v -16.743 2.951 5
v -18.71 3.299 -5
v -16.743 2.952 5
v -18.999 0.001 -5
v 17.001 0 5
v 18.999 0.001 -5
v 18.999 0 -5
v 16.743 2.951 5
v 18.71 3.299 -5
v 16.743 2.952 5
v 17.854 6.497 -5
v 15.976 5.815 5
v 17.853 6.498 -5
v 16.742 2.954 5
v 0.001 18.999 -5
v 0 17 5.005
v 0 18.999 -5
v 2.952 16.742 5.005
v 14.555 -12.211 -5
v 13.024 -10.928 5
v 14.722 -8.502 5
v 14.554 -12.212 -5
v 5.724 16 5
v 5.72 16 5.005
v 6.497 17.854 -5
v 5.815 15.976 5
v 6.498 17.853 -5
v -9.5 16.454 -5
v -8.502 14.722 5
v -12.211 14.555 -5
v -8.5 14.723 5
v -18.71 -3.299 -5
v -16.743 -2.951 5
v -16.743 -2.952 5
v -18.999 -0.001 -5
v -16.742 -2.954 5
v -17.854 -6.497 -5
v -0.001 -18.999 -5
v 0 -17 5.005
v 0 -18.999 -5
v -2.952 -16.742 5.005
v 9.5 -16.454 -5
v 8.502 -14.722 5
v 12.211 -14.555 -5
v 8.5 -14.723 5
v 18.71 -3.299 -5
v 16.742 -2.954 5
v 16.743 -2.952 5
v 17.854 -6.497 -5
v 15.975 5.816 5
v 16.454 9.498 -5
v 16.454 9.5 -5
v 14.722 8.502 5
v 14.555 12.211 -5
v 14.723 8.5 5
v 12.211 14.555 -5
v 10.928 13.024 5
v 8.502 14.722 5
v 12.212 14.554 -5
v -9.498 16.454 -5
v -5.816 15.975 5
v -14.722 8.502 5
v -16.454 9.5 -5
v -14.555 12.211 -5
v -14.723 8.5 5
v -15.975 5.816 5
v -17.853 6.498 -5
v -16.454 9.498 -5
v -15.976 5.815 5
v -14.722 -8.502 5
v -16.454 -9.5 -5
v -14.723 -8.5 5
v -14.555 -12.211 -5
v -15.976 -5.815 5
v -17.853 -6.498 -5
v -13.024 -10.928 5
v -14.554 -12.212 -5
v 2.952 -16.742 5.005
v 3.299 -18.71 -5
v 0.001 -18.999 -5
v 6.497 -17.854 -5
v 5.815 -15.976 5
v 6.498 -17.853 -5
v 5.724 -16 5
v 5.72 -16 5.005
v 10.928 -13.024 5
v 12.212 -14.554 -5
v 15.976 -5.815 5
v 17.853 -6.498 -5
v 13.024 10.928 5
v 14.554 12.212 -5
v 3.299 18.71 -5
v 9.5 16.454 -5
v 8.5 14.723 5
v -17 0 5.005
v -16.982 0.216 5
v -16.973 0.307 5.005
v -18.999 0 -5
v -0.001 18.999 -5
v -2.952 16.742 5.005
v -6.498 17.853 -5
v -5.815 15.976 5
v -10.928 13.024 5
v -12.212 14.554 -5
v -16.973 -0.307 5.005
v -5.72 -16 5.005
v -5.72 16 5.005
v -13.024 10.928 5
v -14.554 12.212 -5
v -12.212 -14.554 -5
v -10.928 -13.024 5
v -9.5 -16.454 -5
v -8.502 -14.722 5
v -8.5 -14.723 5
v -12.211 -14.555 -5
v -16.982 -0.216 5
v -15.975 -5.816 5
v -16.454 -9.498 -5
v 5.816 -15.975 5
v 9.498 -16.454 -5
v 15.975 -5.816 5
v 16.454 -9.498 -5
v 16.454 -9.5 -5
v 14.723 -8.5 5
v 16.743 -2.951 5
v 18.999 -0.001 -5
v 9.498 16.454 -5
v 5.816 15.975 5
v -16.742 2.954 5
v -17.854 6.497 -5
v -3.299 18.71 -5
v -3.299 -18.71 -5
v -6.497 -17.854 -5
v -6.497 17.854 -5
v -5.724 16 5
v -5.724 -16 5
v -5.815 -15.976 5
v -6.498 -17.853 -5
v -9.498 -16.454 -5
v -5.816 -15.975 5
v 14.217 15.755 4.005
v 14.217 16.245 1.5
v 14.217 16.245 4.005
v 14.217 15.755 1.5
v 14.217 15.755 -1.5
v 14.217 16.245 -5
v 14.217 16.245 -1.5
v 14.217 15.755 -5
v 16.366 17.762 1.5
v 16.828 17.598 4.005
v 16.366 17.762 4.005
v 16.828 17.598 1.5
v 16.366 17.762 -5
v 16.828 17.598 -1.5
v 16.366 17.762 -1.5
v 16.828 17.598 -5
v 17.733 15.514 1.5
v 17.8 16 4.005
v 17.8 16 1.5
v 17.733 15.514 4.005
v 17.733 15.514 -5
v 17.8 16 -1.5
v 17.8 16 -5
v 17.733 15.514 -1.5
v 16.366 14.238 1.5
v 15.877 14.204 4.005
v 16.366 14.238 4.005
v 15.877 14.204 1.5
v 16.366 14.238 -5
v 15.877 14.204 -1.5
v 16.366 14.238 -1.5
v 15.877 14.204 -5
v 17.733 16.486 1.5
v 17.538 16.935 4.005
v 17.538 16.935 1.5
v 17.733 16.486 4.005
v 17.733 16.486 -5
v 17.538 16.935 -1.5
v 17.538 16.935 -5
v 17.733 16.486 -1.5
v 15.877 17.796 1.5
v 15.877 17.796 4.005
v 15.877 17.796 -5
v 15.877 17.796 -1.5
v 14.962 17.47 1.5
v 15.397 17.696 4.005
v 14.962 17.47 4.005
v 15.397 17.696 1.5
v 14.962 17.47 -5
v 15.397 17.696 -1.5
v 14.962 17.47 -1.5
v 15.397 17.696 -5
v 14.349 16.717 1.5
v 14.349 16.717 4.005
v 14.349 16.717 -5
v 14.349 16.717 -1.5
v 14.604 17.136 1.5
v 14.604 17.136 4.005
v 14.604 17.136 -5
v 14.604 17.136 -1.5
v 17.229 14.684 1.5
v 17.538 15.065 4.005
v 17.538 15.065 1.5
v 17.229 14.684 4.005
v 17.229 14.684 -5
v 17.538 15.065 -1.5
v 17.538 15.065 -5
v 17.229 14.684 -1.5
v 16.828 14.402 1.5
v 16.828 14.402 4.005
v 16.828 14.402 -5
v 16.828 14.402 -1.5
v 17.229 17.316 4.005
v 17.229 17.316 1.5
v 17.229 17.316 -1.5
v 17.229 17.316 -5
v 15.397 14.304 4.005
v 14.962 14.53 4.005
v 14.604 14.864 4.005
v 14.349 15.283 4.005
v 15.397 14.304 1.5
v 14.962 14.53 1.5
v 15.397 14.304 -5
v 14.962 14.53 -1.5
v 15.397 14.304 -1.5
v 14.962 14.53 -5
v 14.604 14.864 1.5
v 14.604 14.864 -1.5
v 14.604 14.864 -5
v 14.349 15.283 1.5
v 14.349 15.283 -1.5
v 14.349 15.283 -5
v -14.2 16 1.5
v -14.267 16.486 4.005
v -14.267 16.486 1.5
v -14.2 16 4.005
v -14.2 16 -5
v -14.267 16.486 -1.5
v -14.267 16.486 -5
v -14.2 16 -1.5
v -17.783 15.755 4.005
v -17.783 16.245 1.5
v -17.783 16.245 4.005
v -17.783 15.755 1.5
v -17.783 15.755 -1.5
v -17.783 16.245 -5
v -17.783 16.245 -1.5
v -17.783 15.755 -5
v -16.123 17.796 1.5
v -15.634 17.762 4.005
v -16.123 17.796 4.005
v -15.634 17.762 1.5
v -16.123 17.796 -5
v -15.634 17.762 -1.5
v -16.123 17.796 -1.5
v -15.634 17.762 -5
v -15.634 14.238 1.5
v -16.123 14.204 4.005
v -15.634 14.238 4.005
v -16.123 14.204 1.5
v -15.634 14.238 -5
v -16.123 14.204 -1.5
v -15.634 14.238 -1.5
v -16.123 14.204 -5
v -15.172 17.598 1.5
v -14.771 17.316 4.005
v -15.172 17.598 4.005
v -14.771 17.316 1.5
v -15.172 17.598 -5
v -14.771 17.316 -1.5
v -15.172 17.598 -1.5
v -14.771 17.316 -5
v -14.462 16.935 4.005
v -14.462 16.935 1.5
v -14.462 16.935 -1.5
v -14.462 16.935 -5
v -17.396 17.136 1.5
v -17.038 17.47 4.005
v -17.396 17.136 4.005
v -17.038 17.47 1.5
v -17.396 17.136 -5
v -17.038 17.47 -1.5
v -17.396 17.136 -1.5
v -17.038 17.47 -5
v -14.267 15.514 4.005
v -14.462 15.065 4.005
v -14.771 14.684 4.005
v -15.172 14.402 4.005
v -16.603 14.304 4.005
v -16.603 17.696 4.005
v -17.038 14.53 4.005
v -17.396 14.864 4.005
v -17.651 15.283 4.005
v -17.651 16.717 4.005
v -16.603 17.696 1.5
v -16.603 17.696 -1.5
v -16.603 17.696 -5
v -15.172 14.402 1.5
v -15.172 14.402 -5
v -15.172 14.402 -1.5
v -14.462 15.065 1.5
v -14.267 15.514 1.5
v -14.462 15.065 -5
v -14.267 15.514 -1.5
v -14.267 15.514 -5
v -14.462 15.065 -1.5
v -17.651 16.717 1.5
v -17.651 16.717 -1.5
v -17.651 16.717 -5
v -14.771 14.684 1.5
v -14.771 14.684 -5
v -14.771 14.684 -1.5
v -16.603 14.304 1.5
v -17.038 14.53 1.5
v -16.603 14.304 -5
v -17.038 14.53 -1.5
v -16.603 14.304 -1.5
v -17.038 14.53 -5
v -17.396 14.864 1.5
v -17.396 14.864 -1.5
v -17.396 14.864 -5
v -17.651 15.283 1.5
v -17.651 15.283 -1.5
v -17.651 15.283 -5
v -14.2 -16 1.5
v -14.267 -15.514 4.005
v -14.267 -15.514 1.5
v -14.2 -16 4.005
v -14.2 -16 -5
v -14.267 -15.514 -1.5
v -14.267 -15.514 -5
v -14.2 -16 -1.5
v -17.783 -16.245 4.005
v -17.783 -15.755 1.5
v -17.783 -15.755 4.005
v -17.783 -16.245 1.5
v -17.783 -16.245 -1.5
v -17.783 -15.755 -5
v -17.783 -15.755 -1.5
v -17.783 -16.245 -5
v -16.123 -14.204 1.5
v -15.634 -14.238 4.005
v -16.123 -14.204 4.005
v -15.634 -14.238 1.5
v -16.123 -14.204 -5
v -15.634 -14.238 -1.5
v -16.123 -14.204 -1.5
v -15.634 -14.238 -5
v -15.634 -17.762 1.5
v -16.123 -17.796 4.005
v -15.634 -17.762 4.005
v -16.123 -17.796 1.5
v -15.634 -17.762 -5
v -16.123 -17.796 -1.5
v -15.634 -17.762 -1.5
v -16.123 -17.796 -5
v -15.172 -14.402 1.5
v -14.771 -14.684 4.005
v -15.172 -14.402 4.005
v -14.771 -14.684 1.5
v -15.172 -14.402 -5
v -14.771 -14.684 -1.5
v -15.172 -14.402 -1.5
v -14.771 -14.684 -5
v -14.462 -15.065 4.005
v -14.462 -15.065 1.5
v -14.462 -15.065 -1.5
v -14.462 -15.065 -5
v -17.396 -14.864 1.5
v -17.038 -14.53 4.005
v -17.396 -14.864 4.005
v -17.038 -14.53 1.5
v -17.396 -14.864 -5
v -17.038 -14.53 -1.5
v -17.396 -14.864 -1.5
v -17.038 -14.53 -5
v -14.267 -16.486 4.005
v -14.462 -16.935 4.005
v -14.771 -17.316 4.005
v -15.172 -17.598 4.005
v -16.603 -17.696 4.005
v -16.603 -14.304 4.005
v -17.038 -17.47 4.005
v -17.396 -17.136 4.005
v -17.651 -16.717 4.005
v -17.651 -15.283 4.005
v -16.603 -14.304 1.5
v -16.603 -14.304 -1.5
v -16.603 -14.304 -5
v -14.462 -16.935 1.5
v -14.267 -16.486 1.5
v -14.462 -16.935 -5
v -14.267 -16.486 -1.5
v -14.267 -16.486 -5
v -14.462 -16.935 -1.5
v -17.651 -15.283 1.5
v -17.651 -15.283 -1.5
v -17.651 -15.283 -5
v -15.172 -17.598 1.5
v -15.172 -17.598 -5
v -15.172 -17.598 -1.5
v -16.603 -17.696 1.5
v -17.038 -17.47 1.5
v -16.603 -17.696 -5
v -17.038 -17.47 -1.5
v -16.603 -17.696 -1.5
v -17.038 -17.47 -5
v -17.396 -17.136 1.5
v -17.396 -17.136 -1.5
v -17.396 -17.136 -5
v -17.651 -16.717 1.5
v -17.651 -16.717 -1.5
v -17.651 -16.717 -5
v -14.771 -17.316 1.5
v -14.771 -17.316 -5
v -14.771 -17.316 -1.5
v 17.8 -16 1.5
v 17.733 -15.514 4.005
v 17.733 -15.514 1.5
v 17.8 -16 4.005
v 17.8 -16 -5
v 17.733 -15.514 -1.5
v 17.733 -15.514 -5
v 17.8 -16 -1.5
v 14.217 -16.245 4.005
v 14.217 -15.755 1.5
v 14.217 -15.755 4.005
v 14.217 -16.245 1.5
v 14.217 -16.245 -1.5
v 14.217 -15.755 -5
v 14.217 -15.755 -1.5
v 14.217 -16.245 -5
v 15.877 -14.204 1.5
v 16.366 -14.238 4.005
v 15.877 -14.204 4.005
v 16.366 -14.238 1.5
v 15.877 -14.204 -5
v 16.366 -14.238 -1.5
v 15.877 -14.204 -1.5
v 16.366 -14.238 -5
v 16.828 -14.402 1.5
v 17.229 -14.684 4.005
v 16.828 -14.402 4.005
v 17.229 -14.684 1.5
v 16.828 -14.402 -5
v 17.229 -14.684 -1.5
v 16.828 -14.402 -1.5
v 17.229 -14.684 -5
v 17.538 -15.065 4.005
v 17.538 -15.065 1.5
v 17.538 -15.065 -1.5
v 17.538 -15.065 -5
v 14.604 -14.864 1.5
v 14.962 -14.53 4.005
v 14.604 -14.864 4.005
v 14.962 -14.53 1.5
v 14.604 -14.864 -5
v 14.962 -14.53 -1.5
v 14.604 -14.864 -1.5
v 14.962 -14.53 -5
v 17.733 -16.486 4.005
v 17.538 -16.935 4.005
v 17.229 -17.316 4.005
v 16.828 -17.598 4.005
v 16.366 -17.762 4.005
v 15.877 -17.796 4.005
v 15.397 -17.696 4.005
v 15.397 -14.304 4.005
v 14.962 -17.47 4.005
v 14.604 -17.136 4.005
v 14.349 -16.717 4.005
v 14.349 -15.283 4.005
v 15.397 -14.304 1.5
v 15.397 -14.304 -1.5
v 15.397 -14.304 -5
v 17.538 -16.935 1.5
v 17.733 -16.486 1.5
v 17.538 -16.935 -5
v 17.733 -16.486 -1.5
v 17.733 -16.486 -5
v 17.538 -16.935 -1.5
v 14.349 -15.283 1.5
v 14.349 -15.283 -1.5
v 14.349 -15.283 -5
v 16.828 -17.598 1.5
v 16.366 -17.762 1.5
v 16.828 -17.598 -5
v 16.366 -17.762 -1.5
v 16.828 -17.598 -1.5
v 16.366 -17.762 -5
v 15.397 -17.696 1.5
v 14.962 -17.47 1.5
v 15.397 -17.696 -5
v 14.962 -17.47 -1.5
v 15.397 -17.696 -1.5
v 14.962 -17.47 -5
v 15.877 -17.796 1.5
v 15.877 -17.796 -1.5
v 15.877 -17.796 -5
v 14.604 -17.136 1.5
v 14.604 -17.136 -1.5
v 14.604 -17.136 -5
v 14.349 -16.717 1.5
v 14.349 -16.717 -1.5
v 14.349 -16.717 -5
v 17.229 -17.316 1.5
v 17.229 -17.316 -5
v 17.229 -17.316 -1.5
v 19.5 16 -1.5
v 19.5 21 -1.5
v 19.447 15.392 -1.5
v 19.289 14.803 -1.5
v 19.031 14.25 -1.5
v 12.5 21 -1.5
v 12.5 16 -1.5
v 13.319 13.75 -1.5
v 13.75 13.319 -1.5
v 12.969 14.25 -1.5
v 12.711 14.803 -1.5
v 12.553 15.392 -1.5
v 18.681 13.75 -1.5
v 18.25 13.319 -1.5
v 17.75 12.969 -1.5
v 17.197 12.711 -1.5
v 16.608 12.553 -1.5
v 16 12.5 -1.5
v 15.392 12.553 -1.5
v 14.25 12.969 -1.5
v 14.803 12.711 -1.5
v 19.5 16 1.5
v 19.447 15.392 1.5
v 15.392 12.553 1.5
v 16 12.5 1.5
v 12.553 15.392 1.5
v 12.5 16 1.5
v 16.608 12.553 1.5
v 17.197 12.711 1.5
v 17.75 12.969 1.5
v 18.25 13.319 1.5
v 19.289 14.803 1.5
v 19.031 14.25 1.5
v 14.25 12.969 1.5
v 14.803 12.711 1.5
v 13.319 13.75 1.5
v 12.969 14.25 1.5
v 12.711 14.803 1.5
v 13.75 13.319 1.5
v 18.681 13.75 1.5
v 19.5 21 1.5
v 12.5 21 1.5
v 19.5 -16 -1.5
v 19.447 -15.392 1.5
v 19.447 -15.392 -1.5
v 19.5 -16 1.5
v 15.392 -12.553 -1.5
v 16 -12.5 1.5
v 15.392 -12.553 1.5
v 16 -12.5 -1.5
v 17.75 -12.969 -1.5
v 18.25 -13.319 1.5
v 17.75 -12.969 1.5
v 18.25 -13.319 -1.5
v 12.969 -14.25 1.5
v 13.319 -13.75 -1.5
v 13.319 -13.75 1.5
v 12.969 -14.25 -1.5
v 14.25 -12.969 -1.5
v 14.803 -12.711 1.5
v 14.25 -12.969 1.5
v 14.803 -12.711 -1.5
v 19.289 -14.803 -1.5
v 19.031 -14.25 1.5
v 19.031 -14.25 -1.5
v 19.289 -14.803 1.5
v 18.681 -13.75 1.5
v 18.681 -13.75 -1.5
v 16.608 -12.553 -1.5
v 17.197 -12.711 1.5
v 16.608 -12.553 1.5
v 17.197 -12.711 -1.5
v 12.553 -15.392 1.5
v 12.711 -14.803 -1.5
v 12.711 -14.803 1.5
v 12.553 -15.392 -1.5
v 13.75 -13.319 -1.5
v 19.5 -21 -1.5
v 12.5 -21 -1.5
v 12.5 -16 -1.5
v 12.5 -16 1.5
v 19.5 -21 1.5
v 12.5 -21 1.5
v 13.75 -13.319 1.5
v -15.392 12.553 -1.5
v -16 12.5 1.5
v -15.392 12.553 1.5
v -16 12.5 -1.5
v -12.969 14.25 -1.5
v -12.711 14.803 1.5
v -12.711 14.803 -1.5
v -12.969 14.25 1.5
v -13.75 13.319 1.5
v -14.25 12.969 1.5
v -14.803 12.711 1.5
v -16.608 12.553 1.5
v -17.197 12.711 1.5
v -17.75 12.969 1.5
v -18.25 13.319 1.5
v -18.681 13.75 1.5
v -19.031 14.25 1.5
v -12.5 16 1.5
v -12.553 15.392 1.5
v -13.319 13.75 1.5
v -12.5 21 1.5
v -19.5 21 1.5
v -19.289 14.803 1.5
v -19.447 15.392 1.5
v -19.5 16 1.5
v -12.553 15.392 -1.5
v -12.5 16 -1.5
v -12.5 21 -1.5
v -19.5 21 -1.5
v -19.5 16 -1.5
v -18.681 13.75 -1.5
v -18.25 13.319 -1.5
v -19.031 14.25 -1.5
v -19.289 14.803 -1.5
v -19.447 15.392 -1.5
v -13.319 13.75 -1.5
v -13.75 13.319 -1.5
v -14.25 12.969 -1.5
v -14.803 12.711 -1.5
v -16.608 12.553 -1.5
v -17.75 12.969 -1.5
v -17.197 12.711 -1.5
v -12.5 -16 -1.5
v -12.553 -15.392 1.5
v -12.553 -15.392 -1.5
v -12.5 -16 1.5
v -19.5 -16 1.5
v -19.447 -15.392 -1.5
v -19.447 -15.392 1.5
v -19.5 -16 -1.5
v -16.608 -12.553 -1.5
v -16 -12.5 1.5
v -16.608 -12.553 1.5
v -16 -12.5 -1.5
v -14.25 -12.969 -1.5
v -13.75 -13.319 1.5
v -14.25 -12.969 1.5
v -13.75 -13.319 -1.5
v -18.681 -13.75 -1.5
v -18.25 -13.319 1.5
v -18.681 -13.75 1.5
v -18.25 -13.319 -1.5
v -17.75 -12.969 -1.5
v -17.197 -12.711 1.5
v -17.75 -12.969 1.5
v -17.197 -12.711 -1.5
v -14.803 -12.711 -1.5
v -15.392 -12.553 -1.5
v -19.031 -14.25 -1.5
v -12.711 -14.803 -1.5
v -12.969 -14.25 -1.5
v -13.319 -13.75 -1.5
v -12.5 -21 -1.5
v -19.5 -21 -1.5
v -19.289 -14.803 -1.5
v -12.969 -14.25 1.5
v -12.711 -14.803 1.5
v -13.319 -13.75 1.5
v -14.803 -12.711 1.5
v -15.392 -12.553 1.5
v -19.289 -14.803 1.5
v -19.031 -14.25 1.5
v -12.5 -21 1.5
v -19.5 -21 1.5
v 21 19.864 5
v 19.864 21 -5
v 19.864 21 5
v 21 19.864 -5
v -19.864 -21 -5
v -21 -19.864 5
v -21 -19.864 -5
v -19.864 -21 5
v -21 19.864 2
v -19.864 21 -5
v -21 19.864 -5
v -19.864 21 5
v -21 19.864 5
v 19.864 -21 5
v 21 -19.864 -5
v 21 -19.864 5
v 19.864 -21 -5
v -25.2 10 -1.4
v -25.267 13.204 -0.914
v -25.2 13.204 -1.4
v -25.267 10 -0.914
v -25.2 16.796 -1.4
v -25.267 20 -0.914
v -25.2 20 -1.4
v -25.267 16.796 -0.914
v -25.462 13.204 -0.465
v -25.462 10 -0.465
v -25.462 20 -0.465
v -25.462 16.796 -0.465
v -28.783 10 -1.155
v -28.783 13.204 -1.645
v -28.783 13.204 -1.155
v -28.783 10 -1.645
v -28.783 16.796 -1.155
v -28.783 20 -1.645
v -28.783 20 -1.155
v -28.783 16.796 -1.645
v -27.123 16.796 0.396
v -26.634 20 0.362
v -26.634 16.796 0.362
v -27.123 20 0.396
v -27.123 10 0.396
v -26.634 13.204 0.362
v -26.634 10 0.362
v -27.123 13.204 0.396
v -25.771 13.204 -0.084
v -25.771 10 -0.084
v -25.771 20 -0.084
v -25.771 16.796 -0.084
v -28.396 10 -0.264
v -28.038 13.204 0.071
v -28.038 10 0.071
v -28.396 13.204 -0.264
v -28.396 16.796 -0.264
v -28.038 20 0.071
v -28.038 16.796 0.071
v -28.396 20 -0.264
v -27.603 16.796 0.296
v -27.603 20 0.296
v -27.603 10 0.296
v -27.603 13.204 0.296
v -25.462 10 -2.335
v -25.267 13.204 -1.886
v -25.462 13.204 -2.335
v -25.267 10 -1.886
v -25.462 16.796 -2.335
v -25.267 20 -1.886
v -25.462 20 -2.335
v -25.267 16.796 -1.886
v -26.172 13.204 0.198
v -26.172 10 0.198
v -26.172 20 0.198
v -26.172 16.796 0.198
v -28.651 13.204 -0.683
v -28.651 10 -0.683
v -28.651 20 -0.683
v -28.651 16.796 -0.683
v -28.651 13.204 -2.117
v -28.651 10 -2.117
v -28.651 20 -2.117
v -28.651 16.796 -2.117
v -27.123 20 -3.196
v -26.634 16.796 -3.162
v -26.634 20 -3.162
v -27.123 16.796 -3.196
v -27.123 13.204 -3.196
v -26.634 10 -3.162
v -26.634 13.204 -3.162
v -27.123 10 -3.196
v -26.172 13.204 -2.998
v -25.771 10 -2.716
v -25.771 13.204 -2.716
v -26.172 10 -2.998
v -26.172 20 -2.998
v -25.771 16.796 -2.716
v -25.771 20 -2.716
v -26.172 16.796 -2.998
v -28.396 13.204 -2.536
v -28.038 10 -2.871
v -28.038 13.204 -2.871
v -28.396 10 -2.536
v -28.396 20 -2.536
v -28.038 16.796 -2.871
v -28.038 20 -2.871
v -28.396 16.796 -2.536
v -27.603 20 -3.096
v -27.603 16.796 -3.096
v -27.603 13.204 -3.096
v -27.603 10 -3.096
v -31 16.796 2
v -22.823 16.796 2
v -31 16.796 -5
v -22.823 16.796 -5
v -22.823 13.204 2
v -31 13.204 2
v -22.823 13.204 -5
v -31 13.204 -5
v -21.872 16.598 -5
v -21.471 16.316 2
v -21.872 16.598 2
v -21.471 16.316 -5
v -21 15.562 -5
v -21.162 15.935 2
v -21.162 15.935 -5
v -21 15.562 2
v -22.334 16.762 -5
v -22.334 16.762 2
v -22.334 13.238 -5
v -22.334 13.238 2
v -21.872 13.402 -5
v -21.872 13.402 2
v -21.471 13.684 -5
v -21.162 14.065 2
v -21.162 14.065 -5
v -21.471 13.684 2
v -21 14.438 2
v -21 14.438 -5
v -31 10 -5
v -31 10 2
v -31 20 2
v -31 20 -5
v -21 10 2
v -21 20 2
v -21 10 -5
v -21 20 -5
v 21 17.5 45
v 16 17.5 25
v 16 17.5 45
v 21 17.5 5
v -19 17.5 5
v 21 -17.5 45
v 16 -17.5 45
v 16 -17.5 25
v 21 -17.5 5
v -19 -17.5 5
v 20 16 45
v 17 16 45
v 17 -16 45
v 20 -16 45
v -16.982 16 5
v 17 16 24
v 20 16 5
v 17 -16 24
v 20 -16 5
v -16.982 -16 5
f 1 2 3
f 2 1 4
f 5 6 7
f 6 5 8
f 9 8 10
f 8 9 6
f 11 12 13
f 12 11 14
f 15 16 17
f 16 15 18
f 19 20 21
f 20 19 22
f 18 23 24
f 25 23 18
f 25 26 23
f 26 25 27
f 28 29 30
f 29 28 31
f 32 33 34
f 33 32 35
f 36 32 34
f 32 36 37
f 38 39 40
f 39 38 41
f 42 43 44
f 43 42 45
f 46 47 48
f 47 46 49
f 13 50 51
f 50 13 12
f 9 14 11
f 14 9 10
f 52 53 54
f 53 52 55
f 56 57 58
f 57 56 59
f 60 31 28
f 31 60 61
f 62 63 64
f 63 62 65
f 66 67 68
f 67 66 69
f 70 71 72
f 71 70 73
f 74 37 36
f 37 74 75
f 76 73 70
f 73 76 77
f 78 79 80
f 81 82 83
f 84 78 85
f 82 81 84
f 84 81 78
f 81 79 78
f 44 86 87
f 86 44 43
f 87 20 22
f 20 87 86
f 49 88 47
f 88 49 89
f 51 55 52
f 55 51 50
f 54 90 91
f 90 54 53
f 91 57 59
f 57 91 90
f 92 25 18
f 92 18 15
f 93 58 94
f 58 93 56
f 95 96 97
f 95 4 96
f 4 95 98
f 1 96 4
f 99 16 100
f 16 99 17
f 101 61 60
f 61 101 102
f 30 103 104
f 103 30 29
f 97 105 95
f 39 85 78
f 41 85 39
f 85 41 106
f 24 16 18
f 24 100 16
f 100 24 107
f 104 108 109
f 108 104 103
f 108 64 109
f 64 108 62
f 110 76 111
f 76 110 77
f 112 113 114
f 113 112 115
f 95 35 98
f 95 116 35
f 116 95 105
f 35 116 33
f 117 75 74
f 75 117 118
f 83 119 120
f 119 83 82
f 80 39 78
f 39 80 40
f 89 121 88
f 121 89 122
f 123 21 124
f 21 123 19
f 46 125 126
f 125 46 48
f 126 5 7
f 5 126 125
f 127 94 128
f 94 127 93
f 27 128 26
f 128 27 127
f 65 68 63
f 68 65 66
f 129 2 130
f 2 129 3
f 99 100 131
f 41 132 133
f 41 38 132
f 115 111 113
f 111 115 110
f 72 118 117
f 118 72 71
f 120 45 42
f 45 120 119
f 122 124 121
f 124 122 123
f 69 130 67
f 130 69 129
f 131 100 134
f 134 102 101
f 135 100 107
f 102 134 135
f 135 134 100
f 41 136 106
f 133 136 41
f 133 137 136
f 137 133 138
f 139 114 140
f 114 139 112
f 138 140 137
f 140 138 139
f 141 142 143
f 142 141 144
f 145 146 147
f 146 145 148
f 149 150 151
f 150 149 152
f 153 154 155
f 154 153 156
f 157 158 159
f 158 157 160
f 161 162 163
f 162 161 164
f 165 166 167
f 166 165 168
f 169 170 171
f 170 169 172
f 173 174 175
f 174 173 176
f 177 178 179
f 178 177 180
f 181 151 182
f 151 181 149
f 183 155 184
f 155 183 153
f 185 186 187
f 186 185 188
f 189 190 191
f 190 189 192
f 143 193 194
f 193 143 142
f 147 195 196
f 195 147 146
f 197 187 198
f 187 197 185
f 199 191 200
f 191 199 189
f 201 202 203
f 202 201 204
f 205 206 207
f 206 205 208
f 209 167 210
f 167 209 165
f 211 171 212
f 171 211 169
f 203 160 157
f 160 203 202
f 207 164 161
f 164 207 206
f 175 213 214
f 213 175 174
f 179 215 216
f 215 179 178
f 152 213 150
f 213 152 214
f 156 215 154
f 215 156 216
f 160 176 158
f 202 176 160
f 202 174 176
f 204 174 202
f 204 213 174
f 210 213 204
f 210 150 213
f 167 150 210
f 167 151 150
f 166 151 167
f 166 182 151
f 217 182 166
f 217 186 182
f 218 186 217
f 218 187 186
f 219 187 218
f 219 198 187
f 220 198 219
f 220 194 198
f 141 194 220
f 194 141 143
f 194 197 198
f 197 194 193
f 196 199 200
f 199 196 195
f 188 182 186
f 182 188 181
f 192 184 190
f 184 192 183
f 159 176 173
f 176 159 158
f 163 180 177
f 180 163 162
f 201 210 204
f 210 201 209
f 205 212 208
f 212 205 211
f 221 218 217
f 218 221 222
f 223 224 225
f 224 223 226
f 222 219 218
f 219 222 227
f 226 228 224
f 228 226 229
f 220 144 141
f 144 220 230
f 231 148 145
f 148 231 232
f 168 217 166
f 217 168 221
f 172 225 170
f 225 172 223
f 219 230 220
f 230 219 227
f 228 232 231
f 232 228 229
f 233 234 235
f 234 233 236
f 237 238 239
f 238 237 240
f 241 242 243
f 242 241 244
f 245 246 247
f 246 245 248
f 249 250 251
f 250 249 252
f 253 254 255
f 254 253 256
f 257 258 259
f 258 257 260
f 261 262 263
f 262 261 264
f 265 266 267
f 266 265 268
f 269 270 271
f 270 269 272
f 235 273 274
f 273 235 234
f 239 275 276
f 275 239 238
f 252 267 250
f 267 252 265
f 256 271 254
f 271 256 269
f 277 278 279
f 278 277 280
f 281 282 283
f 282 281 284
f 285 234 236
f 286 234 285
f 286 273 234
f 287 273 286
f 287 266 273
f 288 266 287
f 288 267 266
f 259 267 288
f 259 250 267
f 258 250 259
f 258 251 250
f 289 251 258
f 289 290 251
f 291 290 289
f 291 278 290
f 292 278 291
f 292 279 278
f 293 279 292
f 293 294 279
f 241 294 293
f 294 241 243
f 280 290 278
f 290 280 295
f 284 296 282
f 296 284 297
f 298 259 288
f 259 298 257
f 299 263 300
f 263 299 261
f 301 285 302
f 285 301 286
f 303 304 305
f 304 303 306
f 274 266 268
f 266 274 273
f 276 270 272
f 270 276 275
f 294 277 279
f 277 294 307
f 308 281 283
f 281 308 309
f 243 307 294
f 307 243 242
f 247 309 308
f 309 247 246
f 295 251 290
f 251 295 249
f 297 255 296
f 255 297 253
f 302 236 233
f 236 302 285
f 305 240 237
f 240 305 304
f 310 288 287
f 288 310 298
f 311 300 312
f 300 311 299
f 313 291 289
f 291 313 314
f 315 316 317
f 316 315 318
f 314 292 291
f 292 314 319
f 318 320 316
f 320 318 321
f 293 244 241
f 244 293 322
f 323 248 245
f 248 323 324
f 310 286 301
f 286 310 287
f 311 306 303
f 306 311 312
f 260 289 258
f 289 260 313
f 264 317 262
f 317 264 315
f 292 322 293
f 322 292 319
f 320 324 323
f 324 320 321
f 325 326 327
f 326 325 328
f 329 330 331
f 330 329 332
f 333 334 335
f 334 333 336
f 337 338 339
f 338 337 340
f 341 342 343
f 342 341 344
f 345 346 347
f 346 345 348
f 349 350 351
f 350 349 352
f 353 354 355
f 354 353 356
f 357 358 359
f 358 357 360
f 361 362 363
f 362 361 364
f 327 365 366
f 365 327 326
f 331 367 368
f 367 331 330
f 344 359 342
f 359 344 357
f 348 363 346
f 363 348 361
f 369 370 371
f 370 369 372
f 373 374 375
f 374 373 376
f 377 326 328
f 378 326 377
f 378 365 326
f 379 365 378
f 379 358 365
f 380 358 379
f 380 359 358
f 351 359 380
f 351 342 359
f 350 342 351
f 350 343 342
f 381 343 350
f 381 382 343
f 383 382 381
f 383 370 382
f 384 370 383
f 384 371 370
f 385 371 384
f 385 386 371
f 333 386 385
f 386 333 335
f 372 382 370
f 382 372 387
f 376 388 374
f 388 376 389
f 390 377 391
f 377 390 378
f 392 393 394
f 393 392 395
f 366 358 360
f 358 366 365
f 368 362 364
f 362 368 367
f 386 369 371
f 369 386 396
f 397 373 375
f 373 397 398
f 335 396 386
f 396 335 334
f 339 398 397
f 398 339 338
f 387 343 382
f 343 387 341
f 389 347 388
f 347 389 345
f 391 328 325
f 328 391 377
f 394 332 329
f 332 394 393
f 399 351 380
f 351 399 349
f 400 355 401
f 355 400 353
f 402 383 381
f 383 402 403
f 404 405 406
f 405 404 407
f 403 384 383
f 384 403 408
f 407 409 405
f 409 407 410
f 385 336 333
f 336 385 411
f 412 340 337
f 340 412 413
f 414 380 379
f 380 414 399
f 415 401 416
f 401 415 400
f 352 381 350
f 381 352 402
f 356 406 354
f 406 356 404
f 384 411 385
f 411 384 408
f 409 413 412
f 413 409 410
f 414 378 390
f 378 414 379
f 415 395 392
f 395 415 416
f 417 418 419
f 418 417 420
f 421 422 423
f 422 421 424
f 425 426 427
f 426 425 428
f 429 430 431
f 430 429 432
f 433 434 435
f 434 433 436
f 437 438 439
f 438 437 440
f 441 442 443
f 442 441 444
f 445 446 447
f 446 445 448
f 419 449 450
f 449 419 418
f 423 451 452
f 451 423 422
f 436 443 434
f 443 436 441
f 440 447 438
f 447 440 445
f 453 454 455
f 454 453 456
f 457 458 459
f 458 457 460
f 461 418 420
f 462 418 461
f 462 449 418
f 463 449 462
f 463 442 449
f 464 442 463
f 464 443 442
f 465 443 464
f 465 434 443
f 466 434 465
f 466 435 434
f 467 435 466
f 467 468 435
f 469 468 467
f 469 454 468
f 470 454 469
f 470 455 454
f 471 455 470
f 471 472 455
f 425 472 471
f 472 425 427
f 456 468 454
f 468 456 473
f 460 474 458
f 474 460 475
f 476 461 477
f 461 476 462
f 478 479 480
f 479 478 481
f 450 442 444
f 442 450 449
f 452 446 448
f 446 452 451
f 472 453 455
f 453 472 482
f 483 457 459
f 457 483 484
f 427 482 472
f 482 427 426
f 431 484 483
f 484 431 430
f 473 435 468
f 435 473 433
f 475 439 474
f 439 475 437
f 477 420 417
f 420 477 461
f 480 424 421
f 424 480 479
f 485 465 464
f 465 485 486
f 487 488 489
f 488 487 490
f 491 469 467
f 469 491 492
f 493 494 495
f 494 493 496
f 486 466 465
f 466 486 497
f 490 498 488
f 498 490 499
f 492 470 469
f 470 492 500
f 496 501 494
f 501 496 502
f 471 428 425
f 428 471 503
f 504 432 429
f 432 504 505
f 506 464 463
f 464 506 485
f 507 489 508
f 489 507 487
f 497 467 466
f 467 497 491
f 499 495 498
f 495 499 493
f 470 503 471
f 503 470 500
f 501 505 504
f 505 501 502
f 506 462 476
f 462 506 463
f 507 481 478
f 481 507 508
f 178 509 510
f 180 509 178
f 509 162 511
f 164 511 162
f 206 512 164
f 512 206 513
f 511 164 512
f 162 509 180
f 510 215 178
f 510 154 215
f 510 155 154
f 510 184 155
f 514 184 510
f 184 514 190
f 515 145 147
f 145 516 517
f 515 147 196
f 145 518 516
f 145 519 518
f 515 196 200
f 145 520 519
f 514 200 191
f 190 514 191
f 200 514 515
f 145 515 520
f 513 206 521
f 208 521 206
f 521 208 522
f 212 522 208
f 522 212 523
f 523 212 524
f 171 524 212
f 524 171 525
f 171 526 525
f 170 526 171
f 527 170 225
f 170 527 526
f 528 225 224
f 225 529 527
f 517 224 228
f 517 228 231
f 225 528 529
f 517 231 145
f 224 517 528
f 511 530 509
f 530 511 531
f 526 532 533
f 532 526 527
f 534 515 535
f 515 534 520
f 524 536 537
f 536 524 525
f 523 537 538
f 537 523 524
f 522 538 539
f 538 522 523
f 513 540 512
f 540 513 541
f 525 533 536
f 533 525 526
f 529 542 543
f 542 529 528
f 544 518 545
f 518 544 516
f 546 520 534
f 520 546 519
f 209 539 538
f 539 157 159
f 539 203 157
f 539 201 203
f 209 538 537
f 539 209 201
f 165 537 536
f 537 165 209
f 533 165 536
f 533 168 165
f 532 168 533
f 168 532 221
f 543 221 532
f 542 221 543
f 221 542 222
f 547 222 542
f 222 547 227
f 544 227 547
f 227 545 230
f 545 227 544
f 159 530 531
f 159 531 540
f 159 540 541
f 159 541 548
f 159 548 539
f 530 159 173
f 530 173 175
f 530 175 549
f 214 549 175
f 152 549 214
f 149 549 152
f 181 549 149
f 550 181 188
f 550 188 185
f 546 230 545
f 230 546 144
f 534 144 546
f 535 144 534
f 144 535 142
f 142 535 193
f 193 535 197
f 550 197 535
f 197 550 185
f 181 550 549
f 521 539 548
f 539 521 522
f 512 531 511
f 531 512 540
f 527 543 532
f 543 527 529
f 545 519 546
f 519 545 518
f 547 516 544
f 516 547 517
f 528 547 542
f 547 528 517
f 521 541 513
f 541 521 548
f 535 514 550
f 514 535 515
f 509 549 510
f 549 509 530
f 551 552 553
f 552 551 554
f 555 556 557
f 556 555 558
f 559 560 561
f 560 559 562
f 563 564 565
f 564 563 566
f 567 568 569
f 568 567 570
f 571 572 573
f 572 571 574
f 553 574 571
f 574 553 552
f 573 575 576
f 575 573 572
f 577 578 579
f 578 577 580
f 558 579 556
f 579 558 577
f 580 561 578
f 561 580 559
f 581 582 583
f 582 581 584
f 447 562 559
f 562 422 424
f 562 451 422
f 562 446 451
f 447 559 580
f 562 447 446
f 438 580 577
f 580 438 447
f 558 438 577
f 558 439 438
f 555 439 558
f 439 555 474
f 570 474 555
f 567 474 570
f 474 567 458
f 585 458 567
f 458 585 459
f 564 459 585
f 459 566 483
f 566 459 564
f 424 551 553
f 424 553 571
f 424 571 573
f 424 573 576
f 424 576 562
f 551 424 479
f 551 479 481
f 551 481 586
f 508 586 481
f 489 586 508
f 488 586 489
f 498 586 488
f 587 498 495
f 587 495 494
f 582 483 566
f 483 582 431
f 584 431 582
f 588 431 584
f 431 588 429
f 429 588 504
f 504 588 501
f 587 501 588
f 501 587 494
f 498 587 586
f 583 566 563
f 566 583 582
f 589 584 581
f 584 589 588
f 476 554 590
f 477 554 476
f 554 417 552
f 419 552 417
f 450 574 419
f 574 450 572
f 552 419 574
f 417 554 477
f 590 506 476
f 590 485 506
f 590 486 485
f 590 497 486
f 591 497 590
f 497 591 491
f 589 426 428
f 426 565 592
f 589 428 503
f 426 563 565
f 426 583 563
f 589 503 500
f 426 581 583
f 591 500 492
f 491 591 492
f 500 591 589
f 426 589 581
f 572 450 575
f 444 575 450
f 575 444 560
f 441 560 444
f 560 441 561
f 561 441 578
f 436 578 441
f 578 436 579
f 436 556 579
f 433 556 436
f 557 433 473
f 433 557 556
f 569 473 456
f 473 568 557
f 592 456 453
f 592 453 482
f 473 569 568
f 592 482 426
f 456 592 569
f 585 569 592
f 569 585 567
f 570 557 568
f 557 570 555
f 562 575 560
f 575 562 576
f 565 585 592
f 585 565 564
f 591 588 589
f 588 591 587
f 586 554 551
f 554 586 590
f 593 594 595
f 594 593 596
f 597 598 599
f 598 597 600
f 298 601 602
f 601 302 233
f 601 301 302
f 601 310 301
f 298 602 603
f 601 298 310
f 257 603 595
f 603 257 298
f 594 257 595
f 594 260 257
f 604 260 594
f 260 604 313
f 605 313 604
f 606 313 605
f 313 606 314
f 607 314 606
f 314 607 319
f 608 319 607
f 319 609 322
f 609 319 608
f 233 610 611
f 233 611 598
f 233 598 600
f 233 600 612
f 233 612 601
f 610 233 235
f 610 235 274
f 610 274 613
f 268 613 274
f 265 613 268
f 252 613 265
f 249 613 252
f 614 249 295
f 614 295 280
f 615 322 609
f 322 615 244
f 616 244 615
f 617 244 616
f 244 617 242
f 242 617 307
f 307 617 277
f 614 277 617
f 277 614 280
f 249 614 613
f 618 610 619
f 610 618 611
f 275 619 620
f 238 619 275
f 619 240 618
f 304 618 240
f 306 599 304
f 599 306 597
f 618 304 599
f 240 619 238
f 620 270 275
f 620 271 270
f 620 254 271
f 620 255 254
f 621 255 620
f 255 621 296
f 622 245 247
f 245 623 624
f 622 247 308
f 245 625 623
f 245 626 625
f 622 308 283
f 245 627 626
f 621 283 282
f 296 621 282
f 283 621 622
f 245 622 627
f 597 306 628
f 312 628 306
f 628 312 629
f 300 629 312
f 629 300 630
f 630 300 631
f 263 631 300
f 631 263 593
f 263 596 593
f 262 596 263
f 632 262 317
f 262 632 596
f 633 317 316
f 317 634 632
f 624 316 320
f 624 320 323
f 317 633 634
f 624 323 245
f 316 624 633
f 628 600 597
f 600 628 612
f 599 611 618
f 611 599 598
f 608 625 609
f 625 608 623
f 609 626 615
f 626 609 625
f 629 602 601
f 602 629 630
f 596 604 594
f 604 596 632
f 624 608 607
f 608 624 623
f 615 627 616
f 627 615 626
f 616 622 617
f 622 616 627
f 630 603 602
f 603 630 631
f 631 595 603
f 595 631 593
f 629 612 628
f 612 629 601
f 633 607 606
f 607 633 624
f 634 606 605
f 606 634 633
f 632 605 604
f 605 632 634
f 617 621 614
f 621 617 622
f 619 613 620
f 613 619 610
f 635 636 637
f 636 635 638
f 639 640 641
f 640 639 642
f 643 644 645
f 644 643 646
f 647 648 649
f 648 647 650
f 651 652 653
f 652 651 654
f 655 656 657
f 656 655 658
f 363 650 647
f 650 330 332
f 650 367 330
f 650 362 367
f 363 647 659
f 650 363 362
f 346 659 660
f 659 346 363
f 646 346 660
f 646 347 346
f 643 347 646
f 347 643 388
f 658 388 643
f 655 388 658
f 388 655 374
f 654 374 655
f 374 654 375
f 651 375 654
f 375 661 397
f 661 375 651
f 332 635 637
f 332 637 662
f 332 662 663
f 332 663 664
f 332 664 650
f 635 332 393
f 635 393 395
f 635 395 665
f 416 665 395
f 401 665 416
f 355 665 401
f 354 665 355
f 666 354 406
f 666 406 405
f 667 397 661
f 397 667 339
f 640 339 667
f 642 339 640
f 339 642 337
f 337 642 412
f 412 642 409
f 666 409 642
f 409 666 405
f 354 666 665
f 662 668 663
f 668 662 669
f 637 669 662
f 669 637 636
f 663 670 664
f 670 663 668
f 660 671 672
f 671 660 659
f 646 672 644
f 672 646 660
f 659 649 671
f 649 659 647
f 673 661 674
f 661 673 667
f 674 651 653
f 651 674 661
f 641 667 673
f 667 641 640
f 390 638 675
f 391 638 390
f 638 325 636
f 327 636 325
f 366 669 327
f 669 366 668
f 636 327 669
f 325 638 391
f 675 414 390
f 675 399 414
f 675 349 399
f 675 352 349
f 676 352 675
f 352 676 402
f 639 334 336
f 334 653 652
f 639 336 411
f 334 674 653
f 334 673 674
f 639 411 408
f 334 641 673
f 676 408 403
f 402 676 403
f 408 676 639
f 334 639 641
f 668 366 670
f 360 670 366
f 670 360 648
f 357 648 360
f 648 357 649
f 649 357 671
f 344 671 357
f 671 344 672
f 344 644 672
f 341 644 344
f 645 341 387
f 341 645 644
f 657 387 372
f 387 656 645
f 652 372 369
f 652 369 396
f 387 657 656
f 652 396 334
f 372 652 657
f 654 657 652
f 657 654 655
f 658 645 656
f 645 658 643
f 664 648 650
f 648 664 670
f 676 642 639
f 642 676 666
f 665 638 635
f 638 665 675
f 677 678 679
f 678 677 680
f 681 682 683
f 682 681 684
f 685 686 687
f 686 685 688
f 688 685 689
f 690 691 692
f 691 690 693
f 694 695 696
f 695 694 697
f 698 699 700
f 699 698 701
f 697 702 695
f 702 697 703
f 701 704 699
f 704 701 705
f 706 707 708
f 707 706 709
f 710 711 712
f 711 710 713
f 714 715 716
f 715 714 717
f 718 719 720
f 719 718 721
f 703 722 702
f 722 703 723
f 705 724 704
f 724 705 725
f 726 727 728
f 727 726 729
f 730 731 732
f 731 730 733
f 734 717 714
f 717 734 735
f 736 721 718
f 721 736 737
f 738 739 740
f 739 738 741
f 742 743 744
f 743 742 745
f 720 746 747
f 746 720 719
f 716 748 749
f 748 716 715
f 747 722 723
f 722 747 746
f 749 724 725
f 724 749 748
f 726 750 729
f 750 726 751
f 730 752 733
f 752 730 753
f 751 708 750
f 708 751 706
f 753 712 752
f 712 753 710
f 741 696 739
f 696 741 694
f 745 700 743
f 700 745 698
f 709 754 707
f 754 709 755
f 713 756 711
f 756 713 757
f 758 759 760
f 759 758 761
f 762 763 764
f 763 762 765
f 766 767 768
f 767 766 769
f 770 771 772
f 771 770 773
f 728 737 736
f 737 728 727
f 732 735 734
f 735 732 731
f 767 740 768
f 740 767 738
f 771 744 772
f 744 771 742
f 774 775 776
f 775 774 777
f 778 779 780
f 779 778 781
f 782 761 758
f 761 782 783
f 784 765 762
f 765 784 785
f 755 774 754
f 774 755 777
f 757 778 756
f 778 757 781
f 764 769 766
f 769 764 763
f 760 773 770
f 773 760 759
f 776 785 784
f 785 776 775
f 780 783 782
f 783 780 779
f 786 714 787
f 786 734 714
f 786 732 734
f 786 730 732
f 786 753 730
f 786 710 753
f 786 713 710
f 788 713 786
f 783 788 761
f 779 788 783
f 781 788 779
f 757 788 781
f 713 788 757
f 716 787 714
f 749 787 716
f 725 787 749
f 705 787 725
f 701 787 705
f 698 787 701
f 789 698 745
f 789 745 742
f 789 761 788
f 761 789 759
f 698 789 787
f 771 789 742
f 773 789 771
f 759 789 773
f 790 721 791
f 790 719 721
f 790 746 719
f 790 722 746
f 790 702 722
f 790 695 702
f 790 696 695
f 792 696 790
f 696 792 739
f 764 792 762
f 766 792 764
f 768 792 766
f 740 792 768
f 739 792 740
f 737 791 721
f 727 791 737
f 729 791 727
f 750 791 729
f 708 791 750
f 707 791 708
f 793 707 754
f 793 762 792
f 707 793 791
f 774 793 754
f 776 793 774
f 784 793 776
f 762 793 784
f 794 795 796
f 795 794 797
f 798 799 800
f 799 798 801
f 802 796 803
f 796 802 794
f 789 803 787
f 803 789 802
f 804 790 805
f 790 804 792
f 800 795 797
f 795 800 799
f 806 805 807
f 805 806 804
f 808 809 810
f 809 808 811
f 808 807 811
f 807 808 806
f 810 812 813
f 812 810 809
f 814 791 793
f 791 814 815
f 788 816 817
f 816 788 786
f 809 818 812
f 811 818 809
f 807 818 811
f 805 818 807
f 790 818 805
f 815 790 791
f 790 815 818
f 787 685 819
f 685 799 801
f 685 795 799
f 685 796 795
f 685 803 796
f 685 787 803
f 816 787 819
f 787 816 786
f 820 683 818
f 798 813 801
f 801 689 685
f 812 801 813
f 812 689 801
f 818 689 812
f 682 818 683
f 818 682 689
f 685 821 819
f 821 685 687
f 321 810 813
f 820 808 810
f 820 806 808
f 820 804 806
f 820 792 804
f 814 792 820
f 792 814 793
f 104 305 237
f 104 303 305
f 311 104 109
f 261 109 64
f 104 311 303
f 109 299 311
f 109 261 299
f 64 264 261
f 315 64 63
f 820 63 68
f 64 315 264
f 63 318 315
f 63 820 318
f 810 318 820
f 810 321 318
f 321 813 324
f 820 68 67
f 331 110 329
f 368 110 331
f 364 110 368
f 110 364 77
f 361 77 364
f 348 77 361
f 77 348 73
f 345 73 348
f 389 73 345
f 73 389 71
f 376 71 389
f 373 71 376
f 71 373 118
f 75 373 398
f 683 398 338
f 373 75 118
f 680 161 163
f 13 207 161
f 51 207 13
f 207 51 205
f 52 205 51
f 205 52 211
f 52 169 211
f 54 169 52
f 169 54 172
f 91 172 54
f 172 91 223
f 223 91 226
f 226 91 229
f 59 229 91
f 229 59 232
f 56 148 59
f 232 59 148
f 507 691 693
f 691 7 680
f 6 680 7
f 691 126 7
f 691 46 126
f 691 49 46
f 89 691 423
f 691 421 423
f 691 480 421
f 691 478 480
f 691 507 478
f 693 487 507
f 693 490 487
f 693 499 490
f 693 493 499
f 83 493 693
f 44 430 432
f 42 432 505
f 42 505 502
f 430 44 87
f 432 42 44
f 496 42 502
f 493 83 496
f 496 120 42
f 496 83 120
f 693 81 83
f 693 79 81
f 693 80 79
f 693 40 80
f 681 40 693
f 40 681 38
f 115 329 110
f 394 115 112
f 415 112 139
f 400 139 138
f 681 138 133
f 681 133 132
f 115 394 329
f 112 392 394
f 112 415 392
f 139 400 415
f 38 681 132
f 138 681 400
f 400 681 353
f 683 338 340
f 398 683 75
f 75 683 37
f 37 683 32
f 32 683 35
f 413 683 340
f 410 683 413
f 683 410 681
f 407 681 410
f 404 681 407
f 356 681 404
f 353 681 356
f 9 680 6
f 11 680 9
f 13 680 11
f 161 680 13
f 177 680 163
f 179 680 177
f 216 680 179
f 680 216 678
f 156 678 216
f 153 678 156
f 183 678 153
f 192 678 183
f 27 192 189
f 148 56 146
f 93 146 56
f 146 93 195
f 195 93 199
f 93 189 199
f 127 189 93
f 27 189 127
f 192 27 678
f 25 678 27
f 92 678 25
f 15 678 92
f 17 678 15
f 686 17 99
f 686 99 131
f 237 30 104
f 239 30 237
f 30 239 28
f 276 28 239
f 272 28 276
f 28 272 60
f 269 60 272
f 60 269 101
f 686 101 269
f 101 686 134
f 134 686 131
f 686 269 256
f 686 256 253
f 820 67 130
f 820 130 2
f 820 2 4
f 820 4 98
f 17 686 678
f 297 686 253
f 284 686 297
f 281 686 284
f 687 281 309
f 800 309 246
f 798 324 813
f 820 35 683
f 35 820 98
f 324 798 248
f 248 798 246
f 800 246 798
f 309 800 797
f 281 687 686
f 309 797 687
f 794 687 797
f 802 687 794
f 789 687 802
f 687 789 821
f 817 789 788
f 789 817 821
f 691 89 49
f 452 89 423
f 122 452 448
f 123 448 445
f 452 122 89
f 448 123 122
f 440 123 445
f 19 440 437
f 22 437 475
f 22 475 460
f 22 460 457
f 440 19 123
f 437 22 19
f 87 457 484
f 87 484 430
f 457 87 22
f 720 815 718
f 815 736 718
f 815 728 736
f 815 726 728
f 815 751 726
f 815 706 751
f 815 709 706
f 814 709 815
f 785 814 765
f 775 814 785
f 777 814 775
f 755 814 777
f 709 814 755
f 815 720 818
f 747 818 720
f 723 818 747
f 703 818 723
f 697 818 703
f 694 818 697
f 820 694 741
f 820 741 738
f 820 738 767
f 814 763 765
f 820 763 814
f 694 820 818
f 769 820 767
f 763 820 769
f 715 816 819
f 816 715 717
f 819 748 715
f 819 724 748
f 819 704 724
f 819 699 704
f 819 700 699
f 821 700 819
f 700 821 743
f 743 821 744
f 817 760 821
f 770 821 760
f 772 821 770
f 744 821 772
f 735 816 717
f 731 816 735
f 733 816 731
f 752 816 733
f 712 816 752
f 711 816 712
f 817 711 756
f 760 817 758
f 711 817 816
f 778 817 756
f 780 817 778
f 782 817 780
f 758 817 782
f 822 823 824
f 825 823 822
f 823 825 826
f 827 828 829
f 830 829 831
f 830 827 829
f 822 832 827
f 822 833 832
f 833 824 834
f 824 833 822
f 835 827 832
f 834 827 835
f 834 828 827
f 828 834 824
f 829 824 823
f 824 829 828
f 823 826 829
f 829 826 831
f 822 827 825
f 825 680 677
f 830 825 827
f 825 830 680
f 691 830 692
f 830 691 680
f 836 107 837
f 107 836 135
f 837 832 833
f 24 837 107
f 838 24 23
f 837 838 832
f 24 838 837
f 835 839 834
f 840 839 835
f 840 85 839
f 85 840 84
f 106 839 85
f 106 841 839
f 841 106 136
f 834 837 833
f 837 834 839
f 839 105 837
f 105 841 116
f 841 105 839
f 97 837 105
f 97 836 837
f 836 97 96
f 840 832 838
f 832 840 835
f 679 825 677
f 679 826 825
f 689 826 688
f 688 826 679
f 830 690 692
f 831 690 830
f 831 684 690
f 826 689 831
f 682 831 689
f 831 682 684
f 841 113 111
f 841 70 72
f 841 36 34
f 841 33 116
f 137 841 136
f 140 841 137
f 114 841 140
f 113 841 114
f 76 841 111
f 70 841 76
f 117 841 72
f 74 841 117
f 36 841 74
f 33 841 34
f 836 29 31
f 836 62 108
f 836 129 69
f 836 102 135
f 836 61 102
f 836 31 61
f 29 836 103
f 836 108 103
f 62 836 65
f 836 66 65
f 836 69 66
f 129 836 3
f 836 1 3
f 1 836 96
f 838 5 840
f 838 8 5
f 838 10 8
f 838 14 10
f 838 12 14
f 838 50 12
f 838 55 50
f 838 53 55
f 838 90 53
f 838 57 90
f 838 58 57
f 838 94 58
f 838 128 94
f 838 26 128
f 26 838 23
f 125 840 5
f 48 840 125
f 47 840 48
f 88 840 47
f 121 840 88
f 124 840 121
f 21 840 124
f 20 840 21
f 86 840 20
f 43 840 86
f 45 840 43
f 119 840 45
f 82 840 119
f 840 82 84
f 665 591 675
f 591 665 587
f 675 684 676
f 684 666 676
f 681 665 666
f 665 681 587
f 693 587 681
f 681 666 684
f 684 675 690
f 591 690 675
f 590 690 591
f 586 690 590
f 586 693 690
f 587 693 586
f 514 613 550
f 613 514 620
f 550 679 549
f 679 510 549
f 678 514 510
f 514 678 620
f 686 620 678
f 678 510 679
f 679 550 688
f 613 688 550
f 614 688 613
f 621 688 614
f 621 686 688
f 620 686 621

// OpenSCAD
$fa=10; $fs=0.5;

difference(){

    //exterior
    union(){
    
        //фланец
        cube([42,42,10], center=true);
        
        //сопло
        
        difference(){
        
            rotate([90,0,0])
                linear_extrude(height = 35, center = true, convexity = 10, twist = 0)
                    polygon([[-19, 5], [16, 25], [16, 45], [21, 45], [21, 5]], [[0,2,3,4], [0,1,2]]);
            
            rotate([90,0,0])
                linear_extrude(height = 32, center = true, convexity = 10, twist = 0)
                    polygon([[-17, 4.99], [17, 24], [17, 45.01], [20, 45.01], [20, 4.99]], [[0,2,3,4], [0,1,2]]);
        }
        

    }
    
    //interior
    union(){

        //центральное отверстие
        cylinder(h=10.01, r1=19, r2=17, center=true);
   
        //крепежные отверстия    
        {
            translate([16,16,-0.5]) cylinder(h=9.01, r=1.8, center=true);
            translate([-16,16, -0.5]) cylinder(h=9.01, r=1.8, center=true);
            translate([-16,-16, -0.5]) cylinder(h=9.01, r=1.8, center=true);
            translate([16, -16, -0.5]) cylinder(h=9.01, r=1.8, center=true);
            
            translate([16, 16, 0]) cylinder(h=3, r=3.5, center=true);
            translate([16, 19, 0]) cube([7,6,3], center=true);
            
            translate([16, -16, 0]) cylinder(h=3, r=3.5, center=true);
            translate([16, -19, 0]) cube([7,6,3], center=true);
            
            translate([-16, 16, 0]) cylinder(h=3, r=3.5, center=true);
            translate([-16, 19, 0]) cube([7,6,3], center=true);
            
            translate([-16, -16, 0]) cylinder(h=3, r=3.5, center=true);
            translate([-16, -19, 0]) cube([7,6,3], center=true);
        }
        
        // срезанные уголки
        {
            translate([22.2, 22.2, 0]) rotate([0,0,-45]) cube([10, 5, 10.01],center=true);
            translate([-22.2, -22.2, 0]) rotate([0,0,-45]) cube([10, 5, 10.01],center=true);
            translate([-22.2, 22.2, 0]) rotate([0,0,45]) cube([10, 5, 10.01],center=true);
            translate([22.2, -22.2, 0]) rotate([0,0,45]) cube([10, 5, 10.01],center=true);
        }
        

    }
 
    
}

// ухо вверхухо
difference()
{
    union()
    {
            translate([-26, 15, -1.5]) cube([10, 10, 7], center=true);
    }
    
        union()
        {
            translate([-27, 15, -1.4]) rotate([90, 0, 0]) cylinder(h=10.01, r=1.8, center=true);
    
            hull()
            {
                translate([-22.7, 15, 0]) cylinder(h=10.01, r=1.8, center=true);
                translate([-42, 15, 0]) cylinder(h=10.01, r=1.8, center=true);
            }
        }
}
